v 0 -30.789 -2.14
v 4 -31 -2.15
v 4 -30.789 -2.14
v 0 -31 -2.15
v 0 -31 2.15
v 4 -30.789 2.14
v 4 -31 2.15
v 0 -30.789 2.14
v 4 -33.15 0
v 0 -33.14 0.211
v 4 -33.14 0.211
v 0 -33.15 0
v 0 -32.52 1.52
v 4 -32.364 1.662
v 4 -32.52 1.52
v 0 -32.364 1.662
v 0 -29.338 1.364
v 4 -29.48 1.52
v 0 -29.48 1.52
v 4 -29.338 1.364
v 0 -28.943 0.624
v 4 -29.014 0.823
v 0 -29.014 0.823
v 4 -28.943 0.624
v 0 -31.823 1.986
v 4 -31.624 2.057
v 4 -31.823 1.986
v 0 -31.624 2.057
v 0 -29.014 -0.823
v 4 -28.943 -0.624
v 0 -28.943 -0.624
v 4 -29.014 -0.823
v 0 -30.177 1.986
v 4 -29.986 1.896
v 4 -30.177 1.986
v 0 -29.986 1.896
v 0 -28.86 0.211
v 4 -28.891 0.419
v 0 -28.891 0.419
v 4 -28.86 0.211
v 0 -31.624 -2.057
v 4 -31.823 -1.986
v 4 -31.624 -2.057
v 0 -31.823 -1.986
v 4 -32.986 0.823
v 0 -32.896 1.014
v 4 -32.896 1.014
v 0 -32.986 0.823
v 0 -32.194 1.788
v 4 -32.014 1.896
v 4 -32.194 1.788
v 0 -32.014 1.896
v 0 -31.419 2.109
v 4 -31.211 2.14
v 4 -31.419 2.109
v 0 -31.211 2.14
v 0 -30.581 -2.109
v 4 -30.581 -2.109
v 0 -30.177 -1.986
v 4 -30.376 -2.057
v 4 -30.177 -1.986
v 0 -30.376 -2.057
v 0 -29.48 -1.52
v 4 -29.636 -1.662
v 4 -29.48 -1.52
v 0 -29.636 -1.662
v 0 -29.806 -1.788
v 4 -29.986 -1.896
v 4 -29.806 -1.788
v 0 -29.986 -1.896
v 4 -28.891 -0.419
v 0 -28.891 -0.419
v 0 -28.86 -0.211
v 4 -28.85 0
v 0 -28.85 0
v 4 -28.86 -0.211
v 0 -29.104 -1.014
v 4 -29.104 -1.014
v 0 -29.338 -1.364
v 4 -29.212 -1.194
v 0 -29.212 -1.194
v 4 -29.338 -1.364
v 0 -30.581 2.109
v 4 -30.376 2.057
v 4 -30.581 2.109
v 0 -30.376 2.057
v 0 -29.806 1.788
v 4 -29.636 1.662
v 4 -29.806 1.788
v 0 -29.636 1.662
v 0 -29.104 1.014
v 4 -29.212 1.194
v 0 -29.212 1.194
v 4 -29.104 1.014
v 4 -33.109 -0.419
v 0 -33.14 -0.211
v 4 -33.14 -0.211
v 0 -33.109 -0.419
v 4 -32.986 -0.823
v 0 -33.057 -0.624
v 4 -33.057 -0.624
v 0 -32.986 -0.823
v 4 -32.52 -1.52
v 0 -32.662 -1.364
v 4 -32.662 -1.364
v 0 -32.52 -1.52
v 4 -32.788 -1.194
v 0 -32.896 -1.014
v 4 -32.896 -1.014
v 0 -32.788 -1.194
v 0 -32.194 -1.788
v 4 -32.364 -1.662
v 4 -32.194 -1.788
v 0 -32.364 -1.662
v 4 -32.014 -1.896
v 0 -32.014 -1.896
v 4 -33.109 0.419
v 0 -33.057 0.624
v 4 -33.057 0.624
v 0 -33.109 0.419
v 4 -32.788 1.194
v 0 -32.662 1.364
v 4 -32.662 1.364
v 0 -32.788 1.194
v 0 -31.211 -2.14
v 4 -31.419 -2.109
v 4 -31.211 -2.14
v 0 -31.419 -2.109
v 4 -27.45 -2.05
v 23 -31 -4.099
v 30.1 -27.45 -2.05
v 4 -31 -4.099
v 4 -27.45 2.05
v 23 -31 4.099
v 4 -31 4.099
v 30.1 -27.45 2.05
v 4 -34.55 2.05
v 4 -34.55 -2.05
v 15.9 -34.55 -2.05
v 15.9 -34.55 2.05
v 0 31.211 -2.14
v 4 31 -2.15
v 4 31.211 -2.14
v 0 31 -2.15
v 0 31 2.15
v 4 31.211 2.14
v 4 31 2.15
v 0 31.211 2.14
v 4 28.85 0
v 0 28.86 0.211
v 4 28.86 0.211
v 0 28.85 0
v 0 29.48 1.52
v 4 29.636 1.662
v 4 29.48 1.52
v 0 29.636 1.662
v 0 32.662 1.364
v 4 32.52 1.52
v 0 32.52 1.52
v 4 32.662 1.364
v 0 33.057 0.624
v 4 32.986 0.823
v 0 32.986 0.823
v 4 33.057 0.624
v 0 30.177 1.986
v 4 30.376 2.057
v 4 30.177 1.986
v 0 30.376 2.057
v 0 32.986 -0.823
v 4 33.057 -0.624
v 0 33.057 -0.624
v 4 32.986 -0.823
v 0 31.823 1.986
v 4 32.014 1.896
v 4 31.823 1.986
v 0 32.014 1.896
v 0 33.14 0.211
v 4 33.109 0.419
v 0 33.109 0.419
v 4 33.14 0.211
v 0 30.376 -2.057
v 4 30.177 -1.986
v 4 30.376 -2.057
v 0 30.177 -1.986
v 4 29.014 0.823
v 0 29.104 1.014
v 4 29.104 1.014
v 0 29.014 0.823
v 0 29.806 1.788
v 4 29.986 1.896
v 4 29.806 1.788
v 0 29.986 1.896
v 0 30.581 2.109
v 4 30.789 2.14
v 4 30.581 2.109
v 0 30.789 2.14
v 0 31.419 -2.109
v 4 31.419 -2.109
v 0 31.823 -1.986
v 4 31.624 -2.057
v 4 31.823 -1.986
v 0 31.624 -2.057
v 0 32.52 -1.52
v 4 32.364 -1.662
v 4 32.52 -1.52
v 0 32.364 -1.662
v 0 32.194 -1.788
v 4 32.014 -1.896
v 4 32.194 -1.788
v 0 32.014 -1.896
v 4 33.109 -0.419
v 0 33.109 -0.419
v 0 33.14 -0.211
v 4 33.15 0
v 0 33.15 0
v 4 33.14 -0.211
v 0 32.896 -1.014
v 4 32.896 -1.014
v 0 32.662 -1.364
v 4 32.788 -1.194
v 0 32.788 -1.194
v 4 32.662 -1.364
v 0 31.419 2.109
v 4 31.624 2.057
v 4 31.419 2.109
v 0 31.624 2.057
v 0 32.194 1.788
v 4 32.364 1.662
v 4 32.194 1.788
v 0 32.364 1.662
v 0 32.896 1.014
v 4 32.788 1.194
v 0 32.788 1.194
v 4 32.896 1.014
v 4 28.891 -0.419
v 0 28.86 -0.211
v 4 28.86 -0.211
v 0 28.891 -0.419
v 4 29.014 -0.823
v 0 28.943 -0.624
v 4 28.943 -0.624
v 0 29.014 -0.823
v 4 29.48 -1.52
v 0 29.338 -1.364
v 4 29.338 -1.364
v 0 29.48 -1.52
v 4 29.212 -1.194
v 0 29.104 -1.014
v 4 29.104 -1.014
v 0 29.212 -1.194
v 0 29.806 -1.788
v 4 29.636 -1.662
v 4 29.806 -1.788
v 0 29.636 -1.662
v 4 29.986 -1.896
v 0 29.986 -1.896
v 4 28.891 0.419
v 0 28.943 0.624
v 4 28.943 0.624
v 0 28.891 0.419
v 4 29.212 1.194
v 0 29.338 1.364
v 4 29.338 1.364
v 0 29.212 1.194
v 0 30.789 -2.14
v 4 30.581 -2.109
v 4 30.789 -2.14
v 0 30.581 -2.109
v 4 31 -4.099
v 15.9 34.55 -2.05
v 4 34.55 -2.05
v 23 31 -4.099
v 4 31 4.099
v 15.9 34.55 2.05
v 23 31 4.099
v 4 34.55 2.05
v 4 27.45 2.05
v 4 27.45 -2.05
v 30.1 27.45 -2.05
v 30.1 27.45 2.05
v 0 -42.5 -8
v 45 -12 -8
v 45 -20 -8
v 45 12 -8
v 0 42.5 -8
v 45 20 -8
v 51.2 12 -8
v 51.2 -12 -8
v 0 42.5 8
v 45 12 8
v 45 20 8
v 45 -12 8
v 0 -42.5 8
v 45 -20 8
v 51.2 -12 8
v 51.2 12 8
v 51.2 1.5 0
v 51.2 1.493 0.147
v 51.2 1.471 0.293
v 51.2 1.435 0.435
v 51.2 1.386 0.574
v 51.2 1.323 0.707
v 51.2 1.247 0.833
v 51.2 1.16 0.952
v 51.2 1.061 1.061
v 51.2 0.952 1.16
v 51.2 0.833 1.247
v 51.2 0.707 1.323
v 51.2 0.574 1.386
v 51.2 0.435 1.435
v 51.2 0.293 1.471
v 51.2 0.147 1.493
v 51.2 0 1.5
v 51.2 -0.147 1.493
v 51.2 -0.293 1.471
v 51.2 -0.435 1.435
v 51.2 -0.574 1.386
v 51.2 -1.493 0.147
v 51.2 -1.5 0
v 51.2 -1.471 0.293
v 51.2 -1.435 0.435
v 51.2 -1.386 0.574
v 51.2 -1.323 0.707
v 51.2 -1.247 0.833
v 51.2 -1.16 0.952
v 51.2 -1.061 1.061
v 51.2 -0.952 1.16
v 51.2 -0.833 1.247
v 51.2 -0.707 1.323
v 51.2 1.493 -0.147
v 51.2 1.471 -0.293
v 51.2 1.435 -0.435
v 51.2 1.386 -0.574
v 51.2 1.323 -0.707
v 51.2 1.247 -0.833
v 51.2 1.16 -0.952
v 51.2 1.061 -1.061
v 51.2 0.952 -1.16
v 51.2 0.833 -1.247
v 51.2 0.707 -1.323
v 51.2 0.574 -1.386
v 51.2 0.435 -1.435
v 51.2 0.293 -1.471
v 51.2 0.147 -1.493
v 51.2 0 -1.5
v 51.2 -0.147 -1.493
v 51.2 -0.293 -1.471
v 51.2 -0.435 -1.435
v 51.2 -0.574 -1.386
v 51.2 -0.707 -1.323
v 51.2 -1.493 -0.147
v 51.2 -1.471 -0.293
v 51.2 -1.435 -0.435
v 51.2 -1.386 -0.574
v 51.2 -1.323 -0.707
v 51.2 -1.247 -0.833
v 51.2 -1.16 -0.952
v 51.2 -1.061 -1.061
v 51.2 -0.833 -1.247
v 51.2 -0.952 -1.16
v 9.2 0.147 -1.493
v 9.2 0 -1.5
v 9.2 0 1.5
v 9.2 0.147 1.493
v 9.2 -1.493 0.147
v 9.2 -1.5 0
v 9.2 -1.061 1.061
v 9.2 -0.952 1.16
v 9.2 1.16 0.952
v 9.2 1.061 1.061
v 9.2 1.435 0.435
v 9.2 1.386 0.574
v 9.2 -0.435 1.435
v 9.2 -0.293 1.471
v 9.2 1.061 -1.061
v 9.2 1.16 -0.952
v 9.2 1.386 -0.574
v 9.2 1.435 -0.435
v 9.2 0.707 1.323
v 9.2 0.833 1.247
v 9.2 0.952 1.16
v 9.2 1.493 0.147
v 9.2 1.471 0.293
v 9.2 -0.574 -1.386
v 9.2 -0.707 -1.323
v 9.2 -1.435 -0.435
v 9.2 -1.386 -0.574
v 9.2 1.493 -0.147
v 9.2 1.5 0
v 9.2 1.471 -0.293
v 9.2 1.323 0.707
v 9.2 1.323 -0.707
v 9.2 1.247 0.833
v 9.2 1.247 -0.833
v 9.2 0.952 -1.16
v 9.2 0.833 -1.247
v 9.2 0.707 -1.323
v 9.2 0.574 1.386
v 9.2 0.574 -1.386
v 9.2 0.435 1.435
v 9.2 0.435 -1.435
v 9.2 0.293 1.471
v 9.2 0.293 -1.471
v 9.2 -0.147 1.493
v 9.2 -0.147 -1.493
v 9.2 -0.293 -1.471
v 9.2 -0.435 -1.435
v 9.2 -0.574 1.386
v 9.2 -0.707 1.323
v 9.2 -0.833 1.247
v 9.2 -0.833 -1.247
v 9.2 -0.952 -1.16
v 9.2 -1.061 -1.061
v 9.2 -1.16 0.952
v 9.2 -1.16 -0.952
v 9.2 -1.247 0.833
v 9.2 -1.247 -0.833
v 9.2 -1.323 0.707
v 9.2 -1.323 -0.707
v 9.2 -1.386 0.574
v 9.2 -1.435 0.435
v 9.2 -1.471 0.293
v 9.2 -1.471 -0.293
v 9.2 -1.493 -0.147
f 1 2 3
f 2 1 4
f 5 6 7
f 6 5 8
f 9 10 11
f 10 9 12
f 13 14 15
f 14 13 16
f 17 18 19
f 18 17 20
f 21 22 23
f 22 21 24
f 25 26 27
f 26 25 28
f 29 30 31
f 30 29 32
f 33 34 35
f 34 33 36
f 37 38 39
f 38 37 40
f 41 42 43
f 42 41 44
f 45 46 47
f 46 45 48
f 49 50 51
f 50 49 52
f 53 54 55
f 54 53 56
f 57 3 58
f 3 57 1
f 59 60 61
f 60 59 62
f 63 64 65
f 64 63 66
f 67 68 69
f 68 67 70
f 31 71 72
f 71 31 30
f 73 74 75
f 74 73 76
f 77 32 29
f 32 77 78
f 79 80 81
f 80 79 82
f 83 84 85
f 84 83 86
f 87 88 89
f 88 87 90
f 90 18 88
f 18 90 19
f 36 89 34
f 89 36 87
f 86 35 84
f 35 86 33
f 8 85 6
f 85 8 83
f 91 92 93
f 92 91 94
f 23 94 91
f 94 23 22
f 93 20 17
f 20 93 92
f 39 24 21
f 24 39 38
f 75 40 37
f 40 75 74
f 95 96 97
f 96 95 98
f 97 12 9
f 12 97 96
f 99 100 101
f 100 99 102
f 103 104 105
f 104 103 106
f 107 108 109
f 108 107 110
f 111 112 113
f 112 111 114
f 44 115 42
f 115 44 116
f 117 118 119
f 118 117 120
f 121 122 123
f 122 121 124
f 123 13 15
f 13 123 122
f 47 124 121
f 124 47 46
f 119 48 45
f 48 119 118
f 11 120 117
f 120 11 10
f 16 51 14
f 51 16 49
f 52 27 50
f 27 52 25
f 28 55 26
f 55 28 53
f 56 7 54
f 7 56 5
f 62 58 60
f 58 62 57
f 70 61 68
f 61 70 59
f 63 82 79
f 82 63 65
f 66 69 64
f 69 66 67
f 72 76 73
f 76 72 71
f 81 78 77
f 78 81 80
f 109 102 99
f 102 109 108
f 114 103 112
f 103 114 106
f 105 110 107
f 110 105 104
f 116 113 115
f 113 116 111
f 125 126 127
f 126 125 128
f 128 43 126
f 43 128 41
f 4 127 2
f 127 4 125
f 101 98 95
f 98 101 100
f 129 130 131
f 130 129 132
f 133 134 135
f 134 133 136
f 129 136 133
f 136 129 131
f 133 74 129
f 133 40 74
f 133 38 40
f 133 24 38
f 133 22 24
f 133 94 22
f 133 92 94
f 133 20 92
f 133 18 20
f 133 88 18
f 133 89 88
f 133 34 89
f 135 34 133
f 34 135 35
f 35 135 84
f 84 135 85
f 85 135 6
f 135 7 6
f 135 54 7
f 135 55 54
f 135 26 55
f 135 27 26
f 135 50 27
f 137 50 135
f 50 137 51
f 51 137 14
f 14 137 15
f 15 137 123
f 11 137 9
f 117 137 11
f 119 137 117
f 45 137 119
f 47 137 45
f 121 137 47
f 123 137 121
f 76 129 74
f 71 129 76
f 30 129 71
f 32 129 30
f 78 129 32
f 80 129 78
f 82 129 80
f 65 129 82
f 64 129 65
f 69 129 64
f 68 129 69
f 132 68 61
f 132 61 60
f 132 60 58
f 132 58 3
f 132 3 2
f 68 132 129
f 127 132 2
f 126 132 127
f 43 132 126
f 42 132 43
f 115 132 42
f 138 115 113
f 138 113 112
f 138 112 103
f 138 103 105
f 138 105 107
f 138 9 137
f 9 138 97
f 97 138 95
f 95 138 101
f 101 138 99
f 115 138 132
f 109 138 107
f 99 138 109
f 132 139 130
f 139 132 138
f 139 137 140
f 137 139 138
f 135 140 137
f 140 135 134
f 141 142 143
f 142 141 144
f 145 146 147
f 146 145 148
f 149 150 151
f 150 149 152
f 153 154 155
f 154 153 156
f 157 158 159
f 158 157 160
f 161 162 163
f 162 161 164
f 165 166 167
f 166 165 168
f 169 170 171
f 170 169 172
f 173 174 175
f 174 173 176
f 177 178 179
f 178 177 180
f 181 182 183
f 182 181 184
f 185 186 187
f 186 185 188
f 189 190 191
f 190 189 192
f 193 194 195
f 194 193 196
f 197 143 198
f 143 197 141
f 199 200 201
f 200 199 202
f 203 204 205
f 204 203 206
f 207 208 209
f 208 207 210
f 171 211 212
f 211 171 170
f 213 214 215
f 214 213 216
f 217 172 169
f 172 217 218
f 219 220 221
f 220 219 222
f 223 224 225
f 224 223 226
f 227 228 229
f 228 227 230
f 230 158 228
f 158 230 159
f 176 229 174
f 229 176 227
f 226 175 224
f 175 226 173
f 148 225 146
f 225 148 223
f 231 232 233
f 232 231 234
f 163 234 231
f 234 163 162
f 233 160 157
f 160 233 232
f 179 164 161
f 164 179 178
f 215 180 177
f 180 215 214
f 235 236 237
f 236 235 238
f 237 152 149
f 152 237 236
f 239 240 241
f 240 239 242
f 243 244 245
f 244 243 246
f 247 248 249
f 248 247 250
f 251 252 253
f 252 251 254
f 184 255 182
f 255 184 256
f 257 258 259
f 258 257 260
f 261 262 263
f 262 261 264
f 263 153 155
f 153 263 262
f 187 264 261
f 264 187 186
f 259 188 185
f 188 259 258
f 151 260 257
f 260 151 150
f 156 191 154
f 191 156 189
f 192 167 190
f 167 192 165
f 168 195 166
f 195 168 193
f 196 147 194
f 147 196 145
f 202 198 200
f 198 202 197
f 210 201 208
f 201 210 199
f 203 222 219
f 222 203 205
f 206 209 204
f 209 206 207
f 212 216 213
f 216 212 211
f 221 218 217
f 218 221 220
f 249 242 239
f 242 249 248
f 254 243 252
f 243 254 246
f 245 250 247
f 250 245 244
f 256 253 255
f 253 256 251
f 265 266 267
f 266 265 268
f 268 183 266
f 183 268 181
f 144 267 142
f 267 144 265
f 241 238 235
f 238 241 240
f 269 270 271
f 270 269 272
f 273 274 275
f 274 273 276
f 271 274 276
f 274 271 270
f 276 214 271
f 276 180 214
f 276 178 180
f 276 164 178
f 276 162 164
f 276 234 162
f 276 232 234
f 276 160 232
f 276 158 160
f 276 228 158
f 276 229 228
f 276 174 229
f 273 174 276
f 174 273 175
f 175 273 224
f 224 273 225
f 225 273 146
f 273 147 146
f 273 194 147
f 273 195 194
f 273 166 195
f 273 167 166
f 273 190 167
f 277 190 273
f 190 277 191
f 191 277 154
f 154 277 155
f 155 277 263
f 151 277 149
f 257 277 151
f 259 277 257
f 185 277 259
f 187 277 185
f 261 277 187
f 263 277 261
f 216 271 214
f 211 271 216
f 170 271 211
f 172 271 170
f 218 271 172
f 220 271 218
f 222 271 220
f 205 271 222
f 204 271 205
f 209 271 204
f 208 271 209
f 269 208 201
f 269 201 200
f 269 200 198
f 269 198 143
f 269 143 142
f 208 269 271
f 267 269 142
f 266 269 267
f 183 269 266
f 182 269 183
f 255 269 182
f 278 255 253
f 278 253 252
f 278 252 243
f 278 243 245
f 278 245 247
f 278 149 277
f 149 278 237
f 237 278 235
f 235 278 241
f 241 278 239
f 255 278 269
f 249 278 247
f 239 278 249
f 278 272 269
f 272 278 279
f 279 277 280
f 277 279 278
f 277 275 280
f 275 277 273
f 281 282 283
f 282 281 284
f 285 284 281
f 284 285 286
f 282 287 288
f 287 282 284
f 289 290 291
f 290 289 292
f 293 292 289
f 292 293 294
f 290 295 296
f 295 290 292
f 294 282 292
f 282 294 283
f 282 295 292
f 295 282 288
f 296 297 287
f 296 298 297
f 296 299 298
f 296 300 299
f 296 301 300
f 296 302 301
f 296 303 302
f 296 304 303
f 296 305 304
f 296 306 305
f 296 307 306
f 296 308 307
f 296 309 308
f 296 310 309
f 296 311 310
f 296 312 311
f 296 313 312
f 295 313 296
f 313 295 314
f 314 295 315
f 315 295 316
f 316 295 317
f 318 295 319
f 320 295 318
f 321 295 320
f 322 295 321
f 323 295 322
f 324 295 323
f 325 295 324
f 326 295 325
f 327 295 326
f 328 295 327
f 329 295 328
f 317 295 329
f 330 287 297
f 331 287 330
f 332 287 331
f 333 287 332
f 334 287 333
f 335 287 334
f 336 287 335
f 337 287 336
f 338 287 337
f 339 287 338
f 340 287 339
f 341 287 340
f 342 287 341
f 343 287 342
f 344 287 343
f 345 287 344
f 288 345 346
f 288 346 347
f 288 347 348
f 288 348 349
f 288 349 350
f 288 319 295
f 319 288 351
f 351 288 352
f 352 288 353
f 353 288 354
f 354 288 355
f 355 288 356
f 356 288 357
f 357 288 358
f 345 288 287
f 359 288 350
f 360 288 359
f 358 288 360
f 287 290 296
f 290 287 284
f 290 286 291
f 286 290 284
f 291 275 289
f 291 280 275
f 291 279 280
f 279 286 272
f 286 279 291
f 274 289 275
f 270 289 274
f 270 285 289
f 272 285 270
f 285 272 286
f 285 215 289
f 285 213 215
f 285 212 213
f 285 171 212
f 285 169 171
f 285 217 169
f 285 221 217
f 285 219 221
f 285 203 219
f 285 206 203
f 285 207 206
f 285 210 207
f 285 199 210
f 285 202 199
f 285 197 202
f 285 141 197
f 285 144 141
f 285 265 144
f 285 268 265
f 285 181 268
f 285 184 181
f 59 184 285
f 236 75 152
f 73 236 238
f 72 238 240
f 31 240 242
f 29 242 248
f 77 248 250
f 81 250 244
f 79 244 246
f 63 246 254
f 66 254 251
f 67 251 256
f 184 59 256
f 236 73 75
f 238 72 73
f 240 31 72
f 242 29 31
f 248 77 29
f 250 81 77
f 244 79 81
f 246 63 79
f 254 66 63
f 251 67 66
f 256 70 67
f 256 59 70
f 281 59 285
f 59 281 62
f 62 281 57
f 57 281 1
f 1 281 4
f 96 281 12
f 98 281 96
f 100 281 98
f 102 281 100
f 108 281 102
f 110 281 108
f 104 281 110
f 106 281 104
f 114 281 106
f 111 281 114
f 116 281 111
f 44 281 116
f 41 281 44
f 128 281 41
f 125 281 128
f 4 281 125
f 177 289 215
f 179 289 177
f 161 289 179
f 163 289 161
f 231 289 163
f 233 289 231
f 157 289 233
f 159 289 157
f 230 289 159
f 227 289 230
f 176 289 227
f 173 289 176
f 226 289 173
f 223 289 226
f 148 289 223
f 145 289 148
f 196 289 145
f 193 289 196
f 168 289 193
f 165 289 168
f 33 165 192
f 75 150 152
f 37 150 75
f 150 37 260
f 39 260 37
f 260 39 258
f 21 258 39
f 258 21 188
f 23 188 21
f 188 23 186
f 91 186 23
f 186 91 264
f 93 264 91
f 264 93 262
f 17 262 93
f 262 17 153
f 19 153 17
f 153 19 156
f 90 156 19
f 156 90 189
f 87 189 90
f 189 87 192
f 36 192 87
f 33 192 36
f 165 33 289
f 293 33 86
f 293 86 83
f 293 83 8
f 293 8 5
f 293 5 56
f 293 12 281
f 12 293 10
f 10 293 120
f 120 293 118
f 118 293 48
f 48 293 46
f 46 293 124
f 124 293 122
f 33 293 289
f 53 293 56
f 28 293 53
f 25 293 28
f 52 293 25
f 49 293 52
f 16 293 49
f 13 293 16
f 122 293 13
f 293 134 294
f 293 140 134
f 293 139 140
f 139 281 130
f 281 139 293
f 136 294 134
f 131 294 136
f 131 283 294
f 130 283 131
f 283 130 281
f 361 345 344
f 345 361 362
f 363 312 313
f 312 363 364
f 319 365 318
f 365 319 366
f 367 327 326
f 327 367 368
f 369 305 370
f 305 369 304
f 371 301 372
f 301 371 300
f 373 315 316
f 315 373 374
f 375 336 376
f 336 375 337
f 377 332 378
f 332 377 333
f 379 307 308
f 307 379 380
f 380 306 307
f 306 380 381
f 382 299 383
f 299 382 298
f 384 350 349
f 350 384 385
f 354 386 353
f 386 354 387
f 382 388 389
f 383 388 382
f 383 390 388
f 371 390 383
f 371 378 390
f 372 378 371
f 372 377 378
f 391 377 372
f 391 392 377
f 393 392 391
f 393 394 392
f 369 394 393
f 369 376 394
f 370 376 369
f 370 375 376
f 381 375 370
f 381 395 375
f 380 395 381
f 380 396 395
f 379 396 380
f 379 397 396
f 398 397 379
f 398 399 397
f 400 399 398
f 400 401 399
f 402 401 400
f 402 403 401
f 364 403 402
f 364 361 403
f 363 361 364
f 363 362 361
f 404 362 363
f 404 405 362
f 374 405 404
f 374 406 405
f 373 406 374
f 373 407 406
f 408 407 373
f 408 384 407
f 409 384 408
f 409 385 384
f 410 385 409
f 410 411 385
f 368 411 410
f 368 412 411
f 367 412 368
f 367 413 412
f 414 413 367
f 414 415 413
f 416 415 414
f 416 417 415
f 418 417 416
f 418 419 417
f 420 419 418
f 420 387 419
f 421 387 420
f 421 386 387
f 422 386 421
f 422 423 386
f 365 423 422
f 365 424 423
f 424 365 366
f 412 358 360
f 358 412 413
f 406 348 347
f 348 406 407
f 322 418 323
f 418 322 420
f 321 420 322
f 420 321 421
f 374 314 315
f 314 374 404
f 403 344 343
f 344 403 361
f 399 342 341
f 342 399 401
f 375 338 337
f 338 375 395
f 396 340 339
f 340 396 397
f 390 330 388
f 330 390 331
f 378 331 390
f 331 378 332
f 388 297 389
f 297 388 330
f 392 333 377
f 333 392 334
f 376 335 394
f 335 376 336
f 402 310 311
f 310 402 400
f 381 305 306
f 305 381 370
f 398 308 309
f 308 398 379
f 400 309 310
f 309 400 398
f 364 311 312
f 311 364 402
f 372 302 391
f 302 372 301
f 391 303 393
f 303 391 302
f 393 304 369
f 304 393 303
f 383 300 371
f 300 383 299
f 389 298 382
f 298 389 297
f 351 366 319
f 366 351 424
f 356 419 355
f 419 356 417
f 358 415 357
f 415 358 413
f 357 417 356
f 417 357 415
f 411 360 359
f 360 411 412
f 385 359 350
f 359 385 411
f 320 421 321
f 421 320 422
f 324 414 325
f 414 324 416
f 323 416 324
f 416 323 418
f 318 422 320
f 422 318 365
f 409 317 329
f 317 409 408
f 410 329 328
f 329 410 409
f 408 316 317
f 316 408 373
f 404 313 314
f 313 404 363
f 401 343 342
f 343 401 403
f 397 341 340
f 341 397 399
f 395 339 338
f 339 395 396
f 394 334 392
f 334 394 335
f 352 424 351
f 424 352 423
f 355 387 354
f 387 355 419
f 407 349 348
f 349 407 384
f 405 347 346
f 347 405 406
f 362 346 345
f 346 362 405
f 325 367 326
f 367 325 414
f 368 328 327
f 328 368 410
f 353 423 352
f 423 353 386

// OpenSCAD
$fn = $preview ? 16 : 64;


width1 = 85;
width2 = 40;
height = 45; // front of rail to device terminals

mountScrewPos = 31;
mountScrewHeight = 4;
mountScrewDiameter = 4.3;
mountScreqNutSize = 7.1 * (2/sqrt(3)); // M4

railInner = 24;
railOuter = 35.5;
railDepth = 6.2;

railScrewLength = 42; // 4x40 wood screw
railScrewHoleDiameter = 3;

mountWidth = 16;


module holder()
{
    module mountScrew()
    {
        translate([-0.01,0,0])
            rotate([0,90,0])
            cylinder(h=100, d=mountScrewDiameter);
        
        translate([mountScrewHeight,0,0])
            rotate([0,90,0])
            cylinder(h=100, d=mountScreqNutSize, $fn=6);
    }
    
    difference(){
        linear_extrude(mountWidth, center=true)
            union()
            {
                polygon([[0, -width1/2], [0, width1/2], [height, width2/2], [height, -width2/2]]);
                
                translate([height, 0])
                    square([railDepth*2, railInner], center=true);
            }
        
        translate([0, -mountScrewPos,0])
            mountScrew();
        translate([0, mountScrewPos,0])
            mountScrew();
            
        translate([height + railDepth - railScrewLength,0,0])
            rotate([0,90,0])
            cylinder(h=100, d=railScrewHoleDiameter);
    }
}


holder();
